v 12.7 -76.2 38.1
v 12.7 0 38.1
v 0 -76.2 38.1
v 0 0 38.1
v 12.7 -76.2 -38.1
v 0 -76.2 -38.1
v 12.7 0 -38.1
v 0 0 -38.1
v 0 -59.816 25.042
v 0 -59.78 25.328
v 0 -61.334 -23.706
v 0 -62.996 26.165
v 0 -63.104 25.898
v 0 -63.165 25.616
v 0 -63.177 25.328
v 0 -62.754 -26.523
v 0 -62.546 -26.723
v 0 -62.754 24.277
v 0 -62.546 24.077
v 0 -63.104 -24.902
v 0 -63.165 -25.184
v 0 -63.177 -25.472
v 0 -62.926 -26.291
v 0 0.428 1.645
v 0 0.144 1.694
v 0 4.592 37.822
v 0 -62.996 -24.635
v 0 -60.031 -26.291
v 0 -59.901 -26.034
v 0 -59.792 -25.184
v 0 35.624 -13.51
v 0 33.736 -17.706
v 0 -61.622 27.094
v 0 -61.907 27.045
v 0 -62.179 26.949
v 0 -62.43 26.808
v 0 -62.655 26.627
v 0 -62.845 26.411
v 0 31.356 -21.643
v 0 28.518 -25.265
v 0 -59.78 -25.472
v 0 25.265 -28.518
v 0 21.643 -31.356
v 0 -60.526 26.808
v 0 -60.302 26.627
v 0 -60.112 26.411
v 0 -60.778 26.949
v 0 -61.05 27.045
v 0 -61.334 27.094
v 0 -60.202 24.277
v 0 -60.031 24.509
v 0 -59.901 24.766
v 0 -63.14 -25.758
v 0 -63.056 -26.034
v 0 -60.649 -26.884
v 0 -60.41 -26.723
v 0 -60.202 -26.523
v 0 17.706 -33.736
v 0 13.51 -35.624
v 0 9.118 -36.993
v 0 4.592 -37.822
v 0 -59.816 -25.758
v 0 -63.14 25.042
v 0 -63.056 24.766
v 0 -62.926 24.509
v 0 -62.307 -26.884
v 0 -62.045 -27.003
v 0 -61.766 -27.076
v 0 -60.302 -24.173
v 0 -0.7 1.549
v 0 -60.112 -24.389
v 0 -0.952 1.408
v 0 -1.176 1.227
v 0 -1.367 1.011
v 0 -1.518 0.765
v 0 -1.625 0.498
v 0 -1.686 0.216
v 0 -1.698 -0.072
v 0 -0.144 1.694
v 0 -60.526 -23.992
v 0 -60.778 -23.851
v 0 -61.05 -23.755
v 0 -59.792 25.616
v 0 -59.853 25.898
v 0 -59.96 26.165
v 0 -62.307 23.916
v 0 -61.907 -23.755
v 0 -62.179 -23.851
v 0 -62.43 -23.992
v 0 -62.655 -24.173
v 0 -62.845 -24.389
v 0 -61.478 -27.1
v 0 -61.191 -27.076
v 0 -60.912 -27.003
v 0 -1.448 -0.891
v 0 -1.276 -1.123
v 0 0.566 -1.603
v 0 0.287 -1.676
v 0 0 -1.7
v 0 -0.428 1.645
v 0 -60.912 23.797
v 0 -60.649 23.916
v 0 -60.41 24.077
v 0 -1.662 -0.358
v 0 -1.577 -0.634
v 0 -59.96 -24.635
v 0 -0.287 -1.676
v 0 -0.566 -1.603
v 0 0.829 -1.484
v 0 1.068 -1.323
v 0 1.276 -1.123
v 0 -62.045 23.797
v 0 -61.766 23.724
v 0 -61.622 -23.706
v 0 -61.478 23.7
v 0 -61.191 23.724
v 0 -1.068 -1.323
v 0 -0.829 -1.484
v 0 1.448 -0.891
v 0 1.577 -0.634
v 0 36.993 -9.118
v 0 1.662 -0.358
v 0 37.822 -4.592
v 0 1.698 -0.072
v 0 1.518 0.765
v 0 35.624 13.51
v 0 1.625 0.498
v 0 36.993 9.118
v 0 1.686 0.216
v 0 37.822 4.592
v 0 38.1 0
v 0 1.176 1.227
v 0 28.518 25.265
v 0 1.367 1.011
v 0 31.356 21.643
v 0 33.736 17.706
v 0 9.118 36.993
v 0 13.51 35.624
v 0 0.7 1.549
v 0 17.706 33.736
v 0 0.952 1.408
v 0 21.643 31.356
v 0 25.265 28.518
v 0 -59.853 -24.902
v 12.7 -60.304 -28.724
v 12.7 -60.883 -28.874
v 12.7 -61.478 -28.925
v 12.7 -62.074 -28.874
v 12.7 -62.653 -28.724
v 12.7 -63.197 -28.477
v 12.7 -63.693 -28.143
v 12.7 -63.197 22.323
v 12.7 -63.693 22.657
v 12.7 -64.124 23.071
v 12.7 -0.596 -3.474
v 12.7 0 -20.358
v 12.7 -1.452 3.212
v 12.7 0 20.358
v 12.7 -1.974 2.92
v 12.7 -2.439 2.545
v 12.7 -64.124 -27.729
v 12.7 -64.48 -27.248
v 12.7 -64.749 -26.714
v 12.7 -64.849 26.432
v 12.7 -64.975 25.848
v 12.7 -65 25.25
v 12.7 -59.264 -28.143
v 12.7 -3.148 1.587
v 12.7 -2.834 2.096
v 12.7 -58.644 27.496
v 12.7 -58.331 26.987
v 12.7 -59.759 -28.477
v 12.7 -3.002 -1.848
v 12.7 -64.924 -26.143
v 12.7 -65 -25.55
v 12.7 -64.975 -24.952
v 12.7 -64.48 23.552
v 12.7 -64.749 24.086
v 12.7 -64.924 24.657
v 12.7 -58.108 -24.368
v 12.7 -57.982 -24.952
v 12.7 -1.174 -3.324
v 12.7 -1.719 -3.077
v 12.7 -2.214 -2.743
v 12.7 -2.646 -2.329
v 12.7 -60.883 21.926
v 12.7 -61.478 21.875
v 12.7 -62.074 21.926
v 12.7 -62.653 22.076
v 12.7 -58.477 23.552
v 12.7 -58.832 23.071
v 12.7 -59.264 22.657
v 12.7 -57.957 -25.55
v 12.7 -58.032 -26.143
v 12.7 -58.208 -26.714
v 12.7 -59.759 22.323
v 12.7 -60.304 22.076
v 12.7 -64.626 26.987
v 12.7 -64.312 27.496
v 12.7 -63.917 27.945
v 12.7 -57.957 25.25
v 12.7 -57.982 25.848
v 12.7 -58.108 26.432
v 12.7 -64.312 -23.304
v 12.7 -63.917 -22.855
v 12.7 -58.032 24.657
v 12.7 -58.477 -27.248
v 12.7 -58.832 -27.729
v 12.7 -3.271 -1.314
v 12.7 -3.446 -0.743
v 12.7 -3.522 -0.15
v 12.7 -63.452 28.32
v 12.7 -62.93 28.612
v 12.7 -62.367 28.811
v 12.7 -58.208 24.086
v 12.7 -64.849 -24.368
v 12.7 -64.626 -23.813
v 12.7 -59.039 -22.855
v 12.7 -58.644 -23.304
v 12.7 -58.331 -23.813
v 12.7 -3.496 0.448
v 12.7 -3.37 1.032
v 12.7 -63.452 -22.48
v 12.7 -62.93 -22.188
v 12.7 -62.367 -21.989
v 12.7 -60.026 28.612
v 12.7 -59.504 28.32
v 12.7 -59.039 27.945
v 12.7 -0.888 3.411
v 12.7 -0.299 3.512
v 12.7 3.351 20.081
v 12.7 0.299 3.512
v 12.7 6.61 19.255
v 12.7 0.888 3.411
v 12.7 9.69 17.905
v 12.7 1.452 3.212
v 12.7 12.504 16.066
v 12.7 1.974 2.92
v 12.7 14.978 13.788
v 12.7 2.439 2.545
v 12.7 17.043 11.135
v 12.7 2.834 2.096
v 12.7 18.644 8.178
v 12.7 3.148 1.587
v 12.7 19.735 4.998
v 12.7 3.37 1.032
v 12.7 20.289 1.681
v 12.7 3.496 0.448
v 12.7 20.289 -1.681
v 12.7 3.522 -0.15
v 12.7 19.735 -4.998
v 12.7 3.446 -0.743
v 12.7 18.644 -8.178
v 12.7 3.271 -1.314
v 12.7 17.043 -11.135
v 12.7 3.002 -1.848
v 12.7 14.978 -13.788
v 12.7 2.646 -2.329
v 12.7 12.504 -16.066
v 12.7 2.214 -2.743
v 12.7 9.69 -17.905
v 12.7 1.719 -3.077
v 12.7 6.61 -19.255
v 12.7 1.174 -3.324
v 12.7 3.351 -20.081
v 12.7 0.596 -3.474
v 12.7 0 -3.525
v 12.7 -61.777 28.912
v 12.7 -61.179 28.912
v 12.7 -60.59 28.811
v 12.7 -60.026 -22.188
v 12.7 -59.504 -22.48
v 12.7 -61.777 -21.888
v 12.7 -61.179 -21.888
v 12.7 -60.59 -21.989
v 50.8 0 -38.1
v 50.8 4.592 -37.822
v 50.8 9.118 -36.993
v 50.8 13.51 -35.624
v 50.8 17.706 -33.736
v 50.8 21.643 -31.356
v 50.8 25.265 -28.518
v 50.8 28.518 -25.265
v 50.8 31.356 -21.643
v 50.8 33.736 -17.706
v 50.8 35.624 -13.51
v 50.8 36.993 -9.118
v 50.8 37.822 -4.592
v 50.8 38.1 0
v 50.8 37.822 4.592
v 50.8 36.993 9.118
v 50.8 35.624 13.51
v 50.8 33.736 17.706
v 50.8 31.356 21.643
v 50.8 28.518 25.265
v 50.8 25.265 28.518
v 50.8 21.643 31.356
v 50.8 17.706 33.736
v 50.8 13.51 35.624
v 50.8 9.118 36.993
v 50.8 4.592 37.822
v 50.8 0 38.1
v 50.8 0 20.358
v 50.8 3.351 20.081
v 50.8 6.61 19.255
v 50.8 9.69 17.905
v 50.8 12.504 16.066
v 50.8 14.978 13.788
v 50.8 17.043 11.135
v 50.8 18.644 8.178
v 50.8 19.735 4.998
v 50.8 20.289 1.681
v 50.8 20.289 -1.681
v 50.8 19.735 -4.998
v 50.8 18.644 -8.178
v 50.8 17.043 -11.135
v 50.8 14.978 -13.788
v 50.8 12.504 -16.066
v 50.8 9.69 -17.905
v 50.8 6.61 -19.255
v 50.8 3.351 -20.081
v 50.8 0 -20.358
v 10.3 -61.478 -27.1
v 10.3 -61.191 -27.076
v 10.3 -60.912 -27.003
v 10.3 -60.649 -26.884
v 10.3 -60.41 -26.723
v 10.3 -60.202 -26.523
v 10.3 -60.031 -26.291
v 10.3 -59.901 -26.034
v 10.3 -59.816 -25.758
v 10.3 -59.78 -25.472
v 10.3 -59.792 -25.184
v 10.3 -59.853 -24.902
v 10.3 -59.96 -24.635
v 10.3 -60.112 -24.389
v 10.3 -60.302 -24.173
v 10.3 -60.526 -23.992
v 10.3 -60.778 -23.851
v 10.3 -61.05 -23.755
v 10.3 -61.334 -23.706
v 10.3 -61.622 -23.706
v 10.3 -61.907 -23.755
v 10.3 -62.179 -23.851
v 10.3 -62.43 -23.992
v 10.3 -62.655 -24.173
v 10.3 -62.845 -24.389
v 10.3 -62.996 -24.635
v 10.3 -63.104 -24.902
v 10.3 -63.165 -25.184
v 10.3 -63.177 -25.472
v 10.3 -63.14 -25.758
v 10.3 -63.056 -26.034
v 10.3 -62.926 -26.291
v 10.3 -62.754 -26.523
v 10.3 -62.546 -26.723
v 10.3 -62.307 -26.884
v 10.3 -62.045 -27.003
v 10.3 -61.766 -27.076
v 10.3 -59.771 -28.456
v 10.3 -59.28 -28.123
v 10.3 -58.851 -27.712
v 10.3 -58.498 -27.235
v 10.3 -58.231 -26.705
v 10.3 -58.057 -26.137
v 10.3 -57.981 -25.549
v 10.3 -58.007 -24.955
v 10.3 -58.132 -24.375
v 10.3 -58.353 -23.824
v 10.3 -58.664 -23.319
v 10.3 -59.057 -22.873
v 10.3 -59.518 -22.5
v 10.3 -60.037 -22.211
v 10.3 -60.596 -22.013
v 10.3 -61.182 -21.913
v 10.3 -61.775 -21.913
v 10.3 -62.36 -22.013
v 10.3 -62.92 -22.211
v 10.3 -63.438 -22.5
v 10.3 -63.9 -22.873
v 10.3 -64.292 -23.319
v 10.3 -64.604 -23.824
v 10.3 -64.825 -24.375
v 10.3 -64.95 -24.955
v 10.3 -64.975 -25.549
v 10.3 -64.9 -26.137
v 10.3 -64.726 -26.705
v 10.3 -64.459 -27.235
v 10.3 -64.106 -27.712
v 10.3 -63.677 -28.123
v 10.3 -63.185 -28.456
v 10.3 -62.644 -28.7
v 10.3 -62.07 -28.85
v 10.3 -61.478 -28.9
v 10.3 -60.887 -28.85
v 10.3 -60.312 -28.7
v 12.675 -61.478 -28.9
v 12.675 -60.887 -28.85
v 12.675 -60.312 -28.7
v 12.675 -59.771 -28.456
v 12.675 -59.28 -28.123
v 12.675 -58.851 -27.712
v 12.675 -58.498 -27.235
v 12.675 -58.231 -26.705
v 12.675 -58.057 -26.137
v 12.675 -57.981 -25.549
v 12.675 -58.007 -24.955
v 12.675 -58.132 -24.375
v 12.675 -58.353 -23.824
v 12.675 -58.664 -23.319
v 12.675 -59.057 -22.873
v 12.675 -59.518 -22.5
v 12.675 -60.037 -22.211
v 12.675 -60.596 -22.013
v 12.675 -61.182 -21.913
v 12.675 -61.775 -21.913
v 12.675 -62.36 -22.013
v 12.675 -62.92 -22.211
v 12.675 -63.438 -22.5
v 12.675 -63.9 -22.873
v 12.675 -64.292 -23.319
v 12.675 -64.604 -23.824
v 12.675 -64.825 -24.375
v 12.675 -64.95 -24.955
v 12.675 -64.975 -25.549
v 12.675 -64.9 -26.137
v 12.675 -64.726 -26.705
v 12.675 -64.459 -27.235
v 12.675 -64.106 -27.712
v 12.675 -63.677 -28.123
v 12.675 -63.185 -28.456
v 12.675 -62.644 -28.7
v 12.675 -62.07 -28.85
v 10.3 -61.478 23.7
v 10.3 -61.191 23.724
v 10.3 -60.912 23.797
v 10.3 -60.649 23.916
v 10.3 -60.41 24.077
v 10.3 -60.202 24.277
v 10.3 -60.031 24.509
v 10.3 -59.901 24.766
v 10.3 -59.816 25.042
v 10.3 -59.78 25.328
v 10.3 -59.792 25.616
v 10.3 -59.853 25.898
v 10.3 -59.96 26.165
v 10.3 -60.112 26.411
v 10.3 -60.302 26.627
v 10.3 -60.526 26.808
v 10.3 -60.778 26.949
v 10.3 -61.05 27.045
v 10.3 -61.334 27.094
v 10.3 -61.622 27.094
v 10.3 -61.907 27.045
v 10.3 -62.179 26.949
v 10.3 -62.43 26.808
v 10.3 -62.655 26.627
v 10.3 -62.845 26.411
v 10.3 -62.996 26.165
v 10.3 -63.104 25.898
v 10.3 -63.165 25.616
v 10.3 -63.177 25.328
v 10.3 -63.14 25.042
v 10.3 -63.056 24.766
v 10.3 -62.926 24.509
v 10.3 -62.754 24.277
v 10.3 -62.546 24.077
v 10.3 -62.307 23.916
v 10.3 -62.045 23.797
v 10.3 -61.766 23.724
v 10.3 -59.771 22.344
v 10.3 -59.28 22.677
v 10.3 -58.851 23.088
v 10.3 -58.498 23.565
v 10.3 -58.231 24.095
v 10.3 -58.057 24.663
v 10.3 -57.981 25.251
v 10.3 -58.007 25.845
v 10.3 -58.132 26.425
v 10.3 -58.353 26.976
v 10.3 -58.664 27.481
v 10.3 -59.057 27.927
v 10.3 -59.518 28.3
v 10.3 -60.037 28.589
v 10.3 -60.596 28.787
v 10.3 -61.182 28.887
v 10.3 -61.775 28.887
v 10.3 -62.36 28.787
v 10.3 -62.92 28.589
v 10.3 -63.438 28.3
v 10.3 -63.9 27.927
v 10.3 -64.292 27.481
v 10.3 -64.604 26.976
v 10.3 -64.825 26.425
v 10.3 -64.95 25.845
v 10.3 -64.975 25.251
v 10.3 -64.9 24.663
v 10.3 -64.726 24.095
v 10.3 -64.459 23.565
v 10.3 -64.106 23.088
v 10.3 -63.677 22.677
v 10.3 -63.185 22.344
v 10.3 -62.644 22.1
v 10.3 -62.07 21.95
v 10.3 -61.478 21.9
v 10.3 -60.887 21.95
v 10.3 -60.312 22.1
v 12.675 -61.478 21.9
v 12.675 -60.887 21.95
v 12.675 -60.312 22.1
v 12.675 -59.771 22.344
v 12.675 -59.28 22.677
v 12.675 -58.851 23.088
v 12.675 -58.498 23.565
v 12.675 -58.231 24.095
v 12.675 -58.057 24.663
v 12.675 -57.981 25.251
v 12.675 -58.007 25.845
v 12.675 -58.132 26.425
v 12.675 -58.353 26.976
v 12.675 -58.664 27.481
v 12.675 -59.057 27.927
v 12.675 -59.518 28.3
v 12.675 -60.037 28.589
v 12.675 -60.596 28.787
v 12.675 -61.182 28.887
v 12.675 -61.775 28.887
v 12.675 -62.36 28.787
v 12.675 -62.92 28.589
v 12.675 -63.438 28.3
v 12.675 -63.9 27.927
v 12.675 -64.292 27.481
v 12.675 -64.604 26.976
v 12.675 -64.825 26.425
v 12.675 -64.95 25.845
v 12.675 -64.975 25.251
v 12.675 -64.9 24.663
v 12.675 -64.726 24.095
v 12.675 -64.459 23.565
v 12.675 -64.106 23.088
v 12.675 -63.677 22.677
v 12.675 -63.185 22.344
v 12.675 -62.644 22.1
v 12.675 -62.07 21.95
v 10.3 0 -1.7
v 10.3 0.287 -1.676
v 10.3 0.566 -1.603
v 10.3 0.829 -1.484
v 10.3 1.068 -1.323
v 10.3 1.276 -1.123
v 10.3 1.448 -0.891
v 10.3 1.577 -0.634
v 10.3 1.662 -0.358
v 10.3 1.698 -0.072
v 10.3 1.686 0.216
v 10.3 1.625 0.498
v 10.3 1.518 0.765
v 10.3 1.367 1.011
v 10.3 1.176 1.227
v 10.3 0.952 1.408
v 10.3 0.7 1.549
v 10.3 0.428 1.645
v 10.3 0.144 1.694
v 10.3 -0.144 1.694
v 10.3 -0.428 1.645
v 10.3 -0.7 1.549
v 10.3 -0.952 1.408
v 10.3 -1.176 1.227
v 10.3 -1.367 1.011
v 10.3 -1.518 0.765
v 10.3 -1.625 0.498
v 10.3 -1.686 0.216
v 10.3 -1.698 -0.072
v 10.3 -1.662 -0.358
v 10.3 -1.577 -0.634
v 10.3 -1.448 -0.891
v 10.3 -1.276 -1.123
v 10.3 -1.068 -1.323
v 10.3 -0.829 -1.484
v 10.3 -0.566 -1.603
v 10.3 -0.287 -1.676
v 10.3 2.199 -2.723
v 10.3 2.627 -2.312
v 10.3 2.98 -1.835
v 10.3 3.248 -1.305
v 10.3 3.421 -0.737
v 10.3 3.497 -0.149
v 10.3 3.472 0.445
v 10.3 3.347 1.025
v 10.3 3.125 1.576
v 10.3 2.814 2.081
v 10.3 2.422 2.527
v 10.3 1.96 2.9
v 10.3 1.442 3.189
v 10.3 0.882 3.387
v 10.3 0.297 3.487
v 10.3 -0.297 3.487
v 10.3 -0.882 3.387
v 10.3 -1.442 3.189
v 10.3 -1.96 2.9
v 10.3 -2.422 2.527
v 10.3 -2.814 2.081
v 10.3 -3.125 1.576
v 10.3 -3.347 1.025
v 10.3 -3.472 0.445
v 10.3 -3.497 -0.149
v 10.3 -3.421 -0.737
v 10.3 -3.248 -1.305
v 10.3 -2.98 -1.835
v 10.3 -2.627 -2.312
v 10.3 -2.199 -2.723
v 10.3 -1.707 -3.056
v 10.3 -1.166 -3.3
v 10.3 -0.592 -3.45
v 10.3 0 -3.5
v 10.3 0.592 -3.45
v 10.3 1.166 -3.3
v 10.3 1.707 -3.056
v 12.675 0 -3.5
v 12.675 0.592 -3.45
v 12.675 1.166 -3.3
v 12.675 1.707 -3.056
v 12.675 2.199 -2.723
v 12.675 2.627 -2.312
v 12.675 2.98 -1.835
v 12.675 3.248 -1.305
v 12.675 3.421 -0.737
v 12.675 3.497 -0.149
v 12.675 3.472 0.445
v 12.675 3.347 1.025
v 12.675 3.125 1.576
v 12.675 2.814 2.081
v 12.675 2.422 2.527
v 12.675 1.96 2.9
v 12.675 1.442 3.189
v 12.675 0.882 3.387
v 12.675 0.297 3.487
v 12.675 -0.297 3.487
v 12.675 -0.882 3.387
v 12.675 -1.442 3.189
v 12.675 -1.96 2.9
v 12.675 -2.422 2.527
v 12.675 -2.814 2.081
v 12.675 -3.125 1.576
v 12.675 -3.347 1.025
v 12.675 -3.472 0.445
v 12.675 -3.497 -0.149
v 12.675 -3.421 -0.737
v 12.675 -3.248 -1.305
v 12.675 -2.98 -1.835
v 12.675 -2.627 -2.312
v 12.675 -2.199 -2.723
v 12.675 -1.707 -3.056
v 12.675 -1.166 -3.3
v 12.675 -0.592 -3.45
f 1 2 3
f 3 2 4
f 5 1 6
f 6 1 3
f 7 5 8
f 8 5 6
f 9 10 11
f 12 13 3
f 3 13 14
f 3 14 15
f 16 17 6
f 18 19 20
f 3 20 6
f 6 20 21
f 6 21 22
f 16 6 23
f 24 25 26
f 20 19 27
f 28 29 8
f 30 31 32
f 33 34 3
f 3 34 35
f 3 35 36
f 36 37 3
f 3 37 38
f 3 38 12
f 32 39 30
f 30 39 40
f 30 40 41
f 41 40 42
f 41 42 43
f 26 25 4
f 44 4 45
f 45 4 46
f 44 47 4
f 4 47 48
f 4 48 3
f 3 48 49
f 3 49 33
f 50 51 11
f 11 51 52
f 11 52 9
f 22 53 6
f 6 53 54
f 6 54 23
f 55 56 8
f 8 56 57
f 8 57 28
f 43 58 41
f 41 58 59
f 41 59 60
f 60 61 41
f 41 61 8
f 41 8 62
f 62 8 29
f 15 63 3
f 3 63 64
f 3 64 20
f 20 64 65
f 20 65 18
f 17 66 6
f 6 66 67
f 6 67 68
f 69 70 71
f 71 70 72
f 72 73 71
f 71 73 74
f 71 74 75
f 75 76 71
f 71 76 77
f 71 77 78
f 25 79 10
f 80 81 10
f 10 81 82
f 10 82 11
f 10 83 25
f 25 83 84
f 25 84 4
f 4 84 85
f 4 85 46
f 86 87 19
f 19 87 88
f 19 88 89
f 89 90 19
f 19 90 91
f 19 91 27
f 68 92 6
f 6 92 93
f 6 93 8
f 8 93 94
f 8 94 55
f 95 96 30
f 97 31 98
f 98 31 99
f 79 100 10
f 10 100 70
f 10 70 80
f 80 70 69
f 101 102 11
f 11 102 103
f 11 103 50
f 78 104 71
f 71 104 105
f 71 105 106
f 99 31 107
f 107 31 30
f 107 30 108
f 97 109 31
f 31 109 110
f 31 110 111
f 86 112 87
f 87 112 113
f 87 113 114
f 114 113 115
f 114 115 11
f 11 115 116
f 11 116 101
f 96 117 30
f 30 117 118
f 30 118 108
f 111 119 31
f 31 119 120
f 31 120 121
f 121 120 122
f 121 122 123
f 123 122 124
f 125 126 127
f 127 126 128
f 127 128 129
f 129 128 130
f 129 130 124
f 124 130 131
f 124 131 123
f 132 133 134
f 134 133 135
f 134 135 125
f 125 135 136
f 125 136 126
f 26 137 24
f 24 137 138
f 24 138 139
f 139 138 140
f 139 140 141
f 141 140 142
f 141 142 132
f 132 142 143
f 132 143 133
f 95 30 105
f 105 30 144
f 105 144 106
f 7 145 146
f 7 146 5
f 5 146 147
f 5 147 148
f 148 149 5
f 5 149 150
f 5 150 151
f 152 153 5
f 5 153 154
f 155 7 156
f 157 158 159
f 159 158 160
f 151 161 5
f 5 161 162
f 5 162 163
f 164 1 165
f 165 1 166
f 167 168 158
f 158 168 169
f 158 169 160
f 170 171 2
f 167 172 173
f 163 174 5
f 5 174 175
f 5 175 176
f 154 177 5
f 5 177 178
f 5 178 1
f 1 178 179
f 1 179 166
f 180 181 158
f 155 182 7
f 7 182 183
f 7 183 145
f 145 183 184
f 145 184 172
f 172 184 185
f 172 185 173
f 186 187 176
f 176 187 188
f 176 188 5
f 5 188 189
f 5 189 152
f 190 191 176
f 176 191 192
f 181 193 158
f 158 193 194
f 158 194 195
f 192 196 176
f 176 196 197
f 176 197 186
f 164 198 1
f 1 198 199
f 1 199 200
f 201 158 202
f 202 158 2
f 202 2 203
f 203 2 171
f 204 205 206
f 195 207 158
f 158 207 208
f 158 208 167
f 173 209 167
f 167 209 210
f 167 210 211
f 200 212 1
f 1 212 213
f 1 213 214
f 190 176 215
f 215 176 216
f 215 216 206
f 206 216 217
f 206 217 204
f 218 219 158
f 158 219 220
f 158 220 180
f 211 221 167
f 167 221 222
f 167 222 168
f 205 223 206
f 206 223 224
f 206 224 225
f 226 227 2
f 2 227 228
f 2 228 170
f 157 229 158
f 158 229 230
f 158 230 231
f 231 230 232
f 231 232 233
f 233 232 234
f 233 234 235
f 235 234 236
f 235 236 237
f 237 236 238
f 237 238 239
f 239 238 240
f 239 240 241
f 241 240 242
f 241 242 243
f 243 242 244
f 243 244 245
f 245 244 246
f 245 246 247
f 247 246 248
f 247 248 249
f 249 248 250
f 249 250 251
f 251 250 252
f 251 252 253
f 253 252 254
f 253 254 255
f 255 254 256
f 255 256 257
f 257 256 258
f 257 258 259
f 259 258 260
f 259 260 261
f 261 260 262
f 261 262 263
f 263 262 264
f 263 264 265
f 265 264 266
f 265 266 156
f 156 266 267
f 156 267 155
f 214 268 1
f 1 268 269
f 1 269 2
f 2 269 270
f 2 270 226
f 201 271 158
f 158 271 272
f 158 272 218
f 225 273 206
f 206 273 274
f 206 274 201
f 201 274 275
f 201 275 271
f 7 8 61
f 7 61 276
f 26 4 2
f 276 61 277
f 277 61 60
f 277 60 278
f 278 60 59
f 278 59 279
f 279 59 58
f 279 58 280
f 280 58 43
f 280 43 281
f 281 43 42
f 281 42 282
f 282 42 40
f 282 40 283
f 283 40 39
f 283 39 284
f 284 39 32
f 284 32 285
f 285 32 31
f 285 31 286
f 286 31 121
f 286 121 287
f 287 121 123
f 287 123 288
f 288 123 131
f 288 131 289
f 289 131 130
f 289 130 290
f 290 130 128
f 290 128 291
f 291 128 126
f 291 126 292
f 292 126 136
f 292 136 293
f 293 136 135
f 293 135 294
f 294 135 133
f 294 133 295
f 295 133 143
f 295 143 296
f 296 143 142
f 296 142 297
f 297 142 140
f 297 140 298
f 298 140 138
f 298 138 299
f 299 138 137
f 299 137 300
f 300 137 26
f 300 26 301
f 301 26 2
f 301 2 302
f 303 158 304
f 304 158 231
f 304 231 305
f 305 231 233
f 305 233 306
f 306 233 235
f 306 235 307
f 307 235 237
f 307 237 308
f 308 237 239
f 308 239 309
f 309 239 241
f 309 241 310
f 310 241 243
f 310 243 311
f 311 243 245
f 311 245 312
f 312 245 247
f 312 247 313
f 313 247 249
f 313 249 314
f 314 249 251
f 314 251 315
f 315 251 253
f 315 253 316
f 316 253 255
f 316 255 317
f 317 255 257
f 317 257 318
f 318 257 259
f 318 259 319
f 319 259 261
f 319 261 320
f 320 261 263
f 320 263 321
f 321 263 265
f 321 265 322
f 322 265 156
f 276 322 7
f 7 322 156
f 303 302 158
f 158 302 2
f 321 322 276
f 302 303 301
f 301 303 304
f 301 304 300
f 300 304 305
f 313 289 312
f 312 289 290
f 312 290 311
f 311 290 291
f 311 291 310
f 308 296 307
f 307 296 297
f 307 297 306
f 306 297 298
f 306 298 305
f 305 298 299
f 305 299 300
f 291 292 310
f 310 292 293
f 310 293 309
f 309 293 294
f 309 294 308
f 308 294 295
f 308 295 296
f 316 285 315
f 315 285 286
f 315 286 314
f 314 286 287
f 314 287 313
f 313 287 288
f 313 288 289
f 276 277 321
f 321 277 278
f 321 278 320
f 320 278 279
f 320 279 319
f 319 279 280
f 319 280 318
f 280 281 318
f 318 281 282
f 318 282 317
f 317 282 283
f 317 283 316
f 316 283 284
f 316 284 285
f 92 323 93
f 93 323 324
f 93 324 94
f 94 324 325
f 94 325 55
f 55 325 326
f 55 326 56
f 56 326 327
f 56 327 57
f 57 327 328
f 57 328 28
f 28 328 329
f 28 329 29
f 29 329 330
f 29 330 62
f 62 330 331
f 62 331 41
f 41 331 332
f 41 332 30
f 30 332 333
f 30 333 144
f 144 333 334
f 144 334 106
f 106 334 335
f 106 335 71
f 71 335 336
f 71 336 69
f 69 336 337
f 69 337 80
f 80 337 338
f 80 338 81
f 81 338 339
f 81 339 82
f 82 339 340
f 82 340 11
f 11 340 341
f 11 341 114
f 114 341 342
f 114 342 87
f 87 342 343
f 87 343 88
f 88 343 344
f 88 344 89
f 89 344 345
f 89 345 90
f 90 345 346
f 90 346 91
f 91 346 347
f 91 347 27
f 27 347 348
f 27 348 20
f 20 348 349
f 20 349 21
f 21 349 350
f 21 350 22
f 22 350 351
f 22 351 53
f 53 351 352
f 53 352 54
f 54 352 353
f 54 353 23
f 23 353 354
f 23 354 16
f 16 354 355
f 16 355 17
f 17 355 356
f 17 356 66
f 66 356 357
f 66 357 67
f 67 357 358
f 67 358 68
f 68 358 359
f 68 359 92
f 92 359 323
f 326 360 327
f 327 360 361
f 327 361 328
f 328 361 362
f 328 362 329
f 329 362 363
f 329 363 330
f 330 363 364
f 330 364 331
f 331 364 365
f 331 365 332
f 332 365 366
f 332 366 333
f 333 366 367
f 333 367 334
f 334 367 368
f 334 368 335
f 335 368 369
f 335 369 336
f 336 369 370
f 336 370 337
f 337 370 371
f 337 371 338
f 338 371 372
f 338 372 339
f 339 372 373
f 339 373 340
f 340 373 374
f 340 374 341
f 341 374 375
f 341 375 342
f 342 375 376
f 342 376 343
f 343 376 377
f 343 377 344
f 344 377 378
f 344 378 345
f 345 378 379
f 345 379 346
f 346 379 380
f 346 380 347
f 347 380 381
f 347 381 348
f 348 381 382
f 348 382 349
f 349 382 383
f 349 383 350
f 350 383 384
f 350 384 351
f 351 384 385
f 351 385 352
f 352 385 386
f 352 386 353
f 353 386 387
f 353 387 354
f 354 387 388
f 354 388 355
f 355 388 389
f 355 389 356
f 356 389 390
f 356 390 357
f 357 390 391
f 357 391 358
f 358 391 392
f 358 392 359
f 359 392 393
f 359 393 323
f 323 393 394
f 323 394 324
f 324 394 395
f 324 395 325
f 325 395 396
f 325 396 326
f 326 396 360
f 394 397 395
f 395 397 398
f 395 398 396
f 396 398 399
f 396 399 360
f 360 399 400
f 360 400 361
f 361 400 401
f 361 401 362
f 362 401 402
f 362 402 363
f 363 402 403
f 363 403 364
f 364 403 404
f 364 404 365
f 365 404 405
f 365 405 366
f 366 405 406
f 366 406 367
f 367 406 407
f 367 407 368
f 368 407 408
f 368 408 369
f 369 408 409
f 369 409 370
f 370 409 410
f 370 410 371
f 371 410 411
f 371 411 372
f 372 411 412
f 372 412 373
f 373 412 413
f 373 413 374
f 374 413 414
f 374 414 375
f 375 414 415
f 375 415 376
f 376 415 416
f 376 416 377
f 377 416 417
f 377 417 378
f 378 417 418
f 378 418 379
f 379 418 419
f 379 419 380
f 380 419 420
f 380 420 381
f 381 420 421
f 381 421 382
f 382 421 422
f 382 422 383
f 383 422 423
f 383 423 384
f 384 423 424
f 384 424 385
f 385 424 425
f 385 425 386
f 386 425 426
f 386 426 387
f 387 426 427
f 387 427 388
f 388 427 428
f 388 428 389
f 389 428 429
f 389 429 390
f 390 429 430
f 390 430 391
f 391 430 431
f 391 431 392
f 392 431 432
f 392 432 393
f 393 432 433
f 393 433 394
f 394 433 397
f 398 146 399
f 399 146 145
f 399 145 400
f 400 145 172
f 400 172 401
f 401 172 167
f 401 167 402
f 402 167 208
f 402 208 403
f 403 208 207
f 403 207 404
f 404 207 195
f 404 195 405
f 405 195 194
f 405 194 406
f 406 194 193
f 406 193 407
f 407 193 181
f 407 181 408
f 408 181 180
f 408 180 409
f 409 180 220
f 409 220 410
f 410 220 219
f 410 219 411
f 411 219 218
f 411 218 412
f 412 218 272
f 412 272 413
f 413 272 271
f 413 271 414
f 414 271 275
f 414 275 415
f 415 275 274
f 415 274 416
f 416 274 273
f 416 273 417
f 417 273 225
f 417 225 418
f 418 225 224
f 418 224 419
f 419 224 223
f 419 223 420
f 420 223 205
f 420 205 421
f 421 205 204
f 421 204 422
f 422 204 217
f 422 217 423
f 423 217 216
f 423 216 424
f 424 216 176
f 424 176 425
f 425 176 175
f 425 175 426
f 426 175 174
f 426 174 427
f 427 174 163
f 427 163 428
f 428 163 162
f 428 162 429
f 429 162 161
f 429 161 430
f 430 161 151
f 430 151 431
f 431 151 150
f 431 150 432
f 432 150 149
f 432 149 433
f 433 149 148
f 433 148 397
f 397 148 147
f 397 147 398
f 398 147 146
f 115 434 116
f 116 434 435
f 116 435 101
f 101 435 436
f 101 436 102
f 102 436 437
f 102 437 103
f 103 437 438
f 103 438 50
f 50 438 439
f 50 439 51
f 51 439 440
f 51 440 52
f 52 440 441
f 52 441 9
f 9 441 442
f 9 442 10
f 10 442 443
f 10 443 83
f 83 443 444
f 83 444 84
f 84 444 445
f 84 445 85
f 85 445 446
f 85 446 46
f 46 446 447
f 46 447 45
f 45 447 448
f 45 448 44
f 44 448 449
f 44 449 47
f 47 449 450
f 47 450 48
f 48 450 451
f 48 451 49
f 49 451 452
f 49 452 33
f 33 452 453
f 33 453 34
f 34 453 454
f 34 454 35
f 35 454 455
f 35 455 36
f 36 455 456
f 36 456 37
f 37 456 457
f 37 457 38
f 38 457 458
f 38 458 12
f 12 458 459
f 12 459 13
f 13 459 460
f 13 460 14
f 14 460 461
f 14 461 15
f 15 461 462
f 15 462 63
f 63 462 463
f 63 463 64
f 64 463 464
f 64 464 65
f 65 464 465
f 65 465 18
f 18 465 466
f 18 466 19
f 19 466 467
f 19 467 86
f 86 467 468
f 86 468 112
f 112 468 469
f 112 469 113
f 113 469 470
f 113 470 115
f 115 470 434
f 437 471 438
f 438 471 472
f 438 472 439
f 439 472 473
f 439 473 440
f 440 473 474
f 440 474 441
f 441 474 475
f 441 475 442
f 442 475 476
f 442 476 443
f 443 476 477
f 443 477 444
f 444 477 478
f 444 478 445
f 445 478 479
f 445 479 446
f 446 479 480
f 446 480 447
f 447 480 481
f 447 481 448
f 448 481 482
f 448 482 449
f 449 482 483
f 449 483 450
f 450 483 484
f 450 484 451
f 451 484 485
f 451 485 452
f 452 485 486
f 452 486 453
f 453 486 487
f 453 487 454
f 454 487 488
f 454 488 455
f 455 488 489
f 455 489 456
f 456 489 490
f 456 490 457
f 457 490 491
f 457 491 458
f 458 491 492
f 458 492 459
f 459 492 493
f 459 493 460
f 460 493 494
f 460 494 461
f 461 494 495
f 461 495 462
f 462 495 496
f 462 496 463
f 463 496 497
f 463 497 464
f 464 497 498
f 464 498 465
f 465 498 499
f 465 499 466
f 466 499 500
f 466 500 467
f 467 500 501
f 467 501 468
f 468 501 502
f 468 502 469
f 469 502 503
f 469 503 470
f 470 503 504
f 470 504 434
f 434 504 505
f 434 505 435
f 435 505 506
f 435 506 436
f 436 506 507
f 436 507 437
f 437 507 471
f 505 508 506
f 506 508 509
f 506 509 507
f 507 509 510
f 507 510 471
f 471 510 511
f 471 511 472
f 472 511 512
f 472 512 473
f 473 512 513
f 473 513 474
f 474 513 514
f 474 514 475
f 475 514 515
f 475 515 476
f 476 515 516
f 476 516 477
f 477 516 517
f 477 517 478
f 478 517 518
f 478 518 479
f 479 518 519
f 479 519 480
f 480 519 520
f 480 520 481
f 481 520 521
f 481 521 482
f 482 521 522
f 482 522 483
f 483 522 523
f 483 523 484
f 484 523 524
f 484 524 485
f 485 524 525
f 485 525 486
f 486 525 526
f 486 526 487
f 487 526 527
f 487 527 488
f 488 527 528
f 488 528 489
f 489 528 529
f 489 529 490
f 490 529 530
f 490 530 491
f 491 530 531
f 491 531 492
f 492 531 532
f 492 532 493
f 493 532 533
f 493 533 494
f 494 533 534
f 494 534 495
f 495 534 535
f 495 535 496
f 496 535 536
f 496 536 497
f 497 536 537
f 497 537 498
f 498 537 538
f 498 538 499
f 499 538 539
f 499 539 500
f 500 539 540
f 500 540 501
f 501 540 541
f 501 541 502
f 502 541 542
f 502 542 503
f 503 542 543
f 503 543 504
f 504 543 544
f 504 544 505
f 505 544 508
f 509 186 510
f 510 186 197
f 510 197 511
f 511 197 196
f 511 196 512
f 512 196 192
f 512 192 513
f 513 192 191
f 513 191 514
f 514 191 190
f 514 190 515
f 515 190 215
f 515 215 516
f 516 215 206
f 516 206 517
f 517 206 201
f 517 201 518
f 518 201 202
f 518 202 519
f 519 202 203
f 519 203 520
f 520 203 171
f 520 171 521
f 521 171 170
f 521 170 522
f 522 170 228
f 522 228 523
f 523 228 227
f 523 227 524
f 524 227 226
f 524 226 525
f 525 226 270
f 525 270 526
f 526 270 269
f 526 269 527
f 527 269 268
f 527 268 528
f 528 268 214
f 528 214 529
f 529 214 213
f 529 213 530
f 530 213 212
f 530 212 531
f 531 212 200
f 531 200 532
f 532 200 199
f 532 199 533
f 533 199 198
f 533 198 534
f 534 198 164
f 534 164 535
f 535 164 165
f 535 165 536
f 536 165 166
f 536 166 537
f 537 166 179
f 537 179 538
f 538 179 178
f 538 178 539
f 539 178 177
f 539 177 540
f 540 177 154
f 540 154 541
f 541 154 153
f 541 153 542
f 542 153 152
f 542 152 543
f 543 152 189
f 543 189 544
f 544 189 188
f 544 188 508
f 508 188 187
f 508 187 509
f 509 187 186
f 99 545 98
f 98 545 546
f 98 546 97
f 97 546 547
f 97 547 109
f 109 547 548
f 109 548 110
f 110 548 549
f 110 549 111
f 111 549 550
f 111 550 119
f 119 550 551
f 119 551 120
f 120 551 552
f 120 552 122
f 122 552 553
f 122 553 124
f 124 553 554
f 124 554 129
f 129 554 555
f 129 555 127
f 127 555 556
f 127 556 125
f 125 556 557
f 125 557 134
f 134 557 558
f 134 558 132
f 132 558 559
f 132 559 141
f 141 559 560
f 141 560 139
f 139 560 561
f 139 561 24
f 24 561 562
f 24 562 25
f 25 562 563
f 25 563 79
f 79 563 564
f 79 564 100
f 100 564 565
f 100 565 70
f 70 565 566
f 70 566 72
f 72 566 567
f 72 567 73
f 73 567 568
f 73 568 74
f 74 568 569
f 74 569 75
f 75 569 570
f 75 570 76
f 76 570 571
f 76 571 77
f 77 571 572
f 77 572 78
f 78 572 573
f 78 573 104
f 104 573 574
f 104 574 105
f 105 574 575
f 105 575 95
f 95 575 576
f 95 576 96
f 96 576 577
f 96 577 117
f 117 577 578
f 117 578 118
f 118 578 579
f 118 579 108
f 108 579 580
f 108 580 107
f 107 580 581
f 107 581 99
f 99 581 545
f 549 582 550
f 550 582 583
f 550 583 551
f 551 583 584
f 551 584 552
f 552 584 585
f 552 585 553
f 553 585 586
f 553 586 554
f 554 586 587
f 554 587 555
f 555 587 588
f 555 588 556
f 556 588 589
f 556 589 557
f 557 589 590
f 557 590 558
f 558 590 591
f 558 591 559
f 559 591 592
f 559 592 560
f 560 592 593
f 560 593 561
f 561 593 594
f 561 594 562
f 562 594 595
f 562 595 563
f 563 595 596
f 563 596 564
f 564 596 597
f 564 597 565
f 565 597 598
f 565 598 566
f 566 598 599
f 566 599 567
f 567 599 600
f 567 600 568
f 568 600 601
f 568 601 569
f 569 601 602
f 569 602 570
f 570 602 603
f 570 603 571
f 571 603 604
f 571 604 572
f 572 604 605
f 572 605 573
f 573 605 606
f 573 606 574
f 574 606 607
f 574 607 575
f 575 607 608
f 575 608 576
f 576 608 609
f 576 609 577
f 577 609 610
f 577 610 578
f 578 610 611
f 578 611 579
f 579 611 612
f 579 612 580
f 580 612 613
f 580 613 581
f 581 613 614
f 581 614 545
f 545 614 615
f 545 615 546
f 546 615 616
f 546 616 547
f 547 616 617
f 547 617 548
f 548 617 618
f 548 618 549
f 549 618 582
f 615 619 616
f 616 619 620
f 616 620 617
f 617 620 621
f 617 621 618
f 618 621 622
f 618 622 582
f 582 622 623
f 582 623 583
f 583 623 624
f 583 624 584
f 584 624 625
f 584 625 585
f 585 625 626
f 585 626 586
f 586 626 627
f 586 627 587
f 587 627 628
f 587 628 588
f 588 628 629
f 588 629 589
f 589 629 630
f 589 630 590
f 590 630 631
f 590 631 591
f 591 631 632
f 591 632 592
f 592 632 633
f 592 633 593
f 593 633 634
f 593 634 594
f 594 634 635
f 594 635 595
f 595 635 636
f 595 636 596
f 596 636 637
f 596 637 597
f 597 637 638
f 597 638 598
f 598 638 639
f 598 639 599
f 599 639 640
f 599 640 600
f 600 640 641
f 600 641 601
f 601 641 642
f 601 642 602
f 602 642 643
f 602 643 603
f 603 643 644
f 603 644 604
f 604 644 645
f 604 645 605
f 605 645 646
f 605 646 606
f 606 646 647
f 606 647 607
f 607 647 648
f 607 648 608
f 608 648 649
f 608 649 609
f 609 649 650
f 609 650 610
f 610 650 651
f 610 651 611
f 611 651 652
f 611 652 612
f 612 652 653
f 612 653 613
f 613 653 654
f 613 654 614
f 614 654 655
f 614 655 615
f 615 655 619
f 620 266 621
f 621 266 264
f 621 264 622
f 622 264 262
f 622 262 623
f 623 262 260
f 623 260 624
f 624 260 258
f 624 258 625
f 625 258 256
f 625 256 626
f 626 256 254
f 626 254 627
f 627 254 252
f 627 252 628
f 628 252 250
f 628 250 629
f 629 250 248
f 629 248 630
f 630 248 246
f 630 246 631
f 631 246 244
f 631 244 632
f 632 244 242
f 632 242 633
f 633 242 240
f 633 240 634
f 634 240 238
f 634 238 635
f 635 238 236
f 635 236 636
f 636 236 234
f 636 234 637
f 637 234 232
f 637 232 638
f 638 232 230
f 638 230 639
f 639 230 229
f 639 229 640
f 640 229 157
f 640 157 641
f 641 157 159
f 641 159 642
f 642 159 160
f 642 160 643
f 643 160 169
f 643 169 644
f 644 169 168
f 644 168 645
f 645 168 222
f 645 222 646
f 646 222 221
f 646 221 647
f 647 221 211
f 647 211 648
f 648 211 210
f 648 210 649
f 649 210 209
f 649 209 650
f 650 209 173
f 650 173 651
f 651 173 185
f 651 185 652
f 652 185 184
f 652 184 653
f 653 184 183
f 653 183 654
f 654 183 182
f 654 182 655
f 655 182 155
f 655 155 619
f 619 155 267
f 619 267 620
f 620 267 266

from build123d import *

# Parameters (mm, degrees)
BOSS_EXTRUDE3_DEPTH                           = 12.7
BOSS_EXTRUDE4_DEPTH                           = 38.1
CBORE_FOR_M3_PAN_HEAD_MACHINE_SCREW1_AT_COUNT = 2
CBORE_FOR_M3_PAN_HEAD_MACHINE_SCREW1_AT_PITCH = 66.51875294
CBORE_FOR_M3_PAN_HEAD_MACHINE_SCREW1_2_COUNT  = 2
CBORE_FOR_M3_PAN_HEAD_MACHINE_SCREW1_2_PITCH  = 66.51875294


with BuildPart() as part:
    # Sketch1 → Boss-Extrude3 (new body)
    with BuildSketch(Plane(origin=(0, 0, 0), x_dir=(0, 0, -1), z_dir=(1, 0, 0))):
        with BuildLine():
            Line((38.1, -76.2), (38.1, 0))
            ThreePointArc((38.1, 0), (0, 38.1), (-38.1, 0))
            Line((-38.1, 0), (-38.1, -76.2))
            Line((-38.1, -76.2), (38.1, -76.2))
        make_face()
    extrude(amount=BOSS_EXTRUDE3_DEPTH)

    # Sketch5 → Boss-Extrude4 (add)
    with BuildSketch(Plane(origin=(12.7, 0, 0), x_dir=(0, 0, -1), z_dir=(1, 0, 0))):
        with BuildLine():
            ThreePointArc((-20.358389677, 0), (0, 20.358389677), (20.358389677, 0))
            Line((20.358389677, 0), (38.1, 0))
            ThreePointArc((38.1, 0), (0, 38.1), (-38.1, 0))
            Line((-38.1, 0), (-20.358389677, 0))
        make_face()
    extrude(amount=BOSS_EXTRUDE4_DEPTH)

    # Sketch8 → CBORE for M3 Pan Head Machine Screw1 (revolve, cut)
    with BuildSketch(Plane(origin=(12.7, 0, 0), x_dir=(0, 0, -1), z_dir=(0, 1, 0))):
        Polygon((0, 0), (0, 12.7), (1.7, 12.7), (1.7, 2.4), (3.5, 2.4), (3.5, 0.025), (3.525, 0), align=None)
    cbore_for_m3_pan_head_machine_screw1 = revolve(axis=Axis((19.05, 0, 0), (-1, 0, 0)), mode=Mode.SUBTRACT)

    # CBORE for M3 Pan Head Machine Screw1 at: CBORE for M3 Pan Head Machine Screw1 ×2
    with Locations(*[Vector(0, -0.924225465, 0.381847207) * (i * CBORE_FOR_M3_PAN_HEAD_MACHINE_SCREW1_AT_PITCH) for i in range(1, CBORE_FOR_M3_PAN_HEAD_MACHINE_SCREW1_AT_COUNT)]):
        add(cbore_for_m3_pan_head_machine_screw1, mode=Mode.SUBTRACT)

    # CBORE for M3 Pan Head Machine Screw1 2: CBORE for M3 Pan Head Machine Screw1 ×2
    with Locations(*[Vector(0, -0.924225465, -0.381847207) * (i * CBORE_FOR_M3_PAN_HEAD_MACHINE_SCREW1_2_PITCH) for i in range(1, CBORE_FOR_M3_PAN_HEAD_MACHINE_SCREW1_2_COUNT)]):
        add(cbore_for_m3_pan_head_machine_screw1, mode=Mode.SUBTRACT)


solid = part.part
